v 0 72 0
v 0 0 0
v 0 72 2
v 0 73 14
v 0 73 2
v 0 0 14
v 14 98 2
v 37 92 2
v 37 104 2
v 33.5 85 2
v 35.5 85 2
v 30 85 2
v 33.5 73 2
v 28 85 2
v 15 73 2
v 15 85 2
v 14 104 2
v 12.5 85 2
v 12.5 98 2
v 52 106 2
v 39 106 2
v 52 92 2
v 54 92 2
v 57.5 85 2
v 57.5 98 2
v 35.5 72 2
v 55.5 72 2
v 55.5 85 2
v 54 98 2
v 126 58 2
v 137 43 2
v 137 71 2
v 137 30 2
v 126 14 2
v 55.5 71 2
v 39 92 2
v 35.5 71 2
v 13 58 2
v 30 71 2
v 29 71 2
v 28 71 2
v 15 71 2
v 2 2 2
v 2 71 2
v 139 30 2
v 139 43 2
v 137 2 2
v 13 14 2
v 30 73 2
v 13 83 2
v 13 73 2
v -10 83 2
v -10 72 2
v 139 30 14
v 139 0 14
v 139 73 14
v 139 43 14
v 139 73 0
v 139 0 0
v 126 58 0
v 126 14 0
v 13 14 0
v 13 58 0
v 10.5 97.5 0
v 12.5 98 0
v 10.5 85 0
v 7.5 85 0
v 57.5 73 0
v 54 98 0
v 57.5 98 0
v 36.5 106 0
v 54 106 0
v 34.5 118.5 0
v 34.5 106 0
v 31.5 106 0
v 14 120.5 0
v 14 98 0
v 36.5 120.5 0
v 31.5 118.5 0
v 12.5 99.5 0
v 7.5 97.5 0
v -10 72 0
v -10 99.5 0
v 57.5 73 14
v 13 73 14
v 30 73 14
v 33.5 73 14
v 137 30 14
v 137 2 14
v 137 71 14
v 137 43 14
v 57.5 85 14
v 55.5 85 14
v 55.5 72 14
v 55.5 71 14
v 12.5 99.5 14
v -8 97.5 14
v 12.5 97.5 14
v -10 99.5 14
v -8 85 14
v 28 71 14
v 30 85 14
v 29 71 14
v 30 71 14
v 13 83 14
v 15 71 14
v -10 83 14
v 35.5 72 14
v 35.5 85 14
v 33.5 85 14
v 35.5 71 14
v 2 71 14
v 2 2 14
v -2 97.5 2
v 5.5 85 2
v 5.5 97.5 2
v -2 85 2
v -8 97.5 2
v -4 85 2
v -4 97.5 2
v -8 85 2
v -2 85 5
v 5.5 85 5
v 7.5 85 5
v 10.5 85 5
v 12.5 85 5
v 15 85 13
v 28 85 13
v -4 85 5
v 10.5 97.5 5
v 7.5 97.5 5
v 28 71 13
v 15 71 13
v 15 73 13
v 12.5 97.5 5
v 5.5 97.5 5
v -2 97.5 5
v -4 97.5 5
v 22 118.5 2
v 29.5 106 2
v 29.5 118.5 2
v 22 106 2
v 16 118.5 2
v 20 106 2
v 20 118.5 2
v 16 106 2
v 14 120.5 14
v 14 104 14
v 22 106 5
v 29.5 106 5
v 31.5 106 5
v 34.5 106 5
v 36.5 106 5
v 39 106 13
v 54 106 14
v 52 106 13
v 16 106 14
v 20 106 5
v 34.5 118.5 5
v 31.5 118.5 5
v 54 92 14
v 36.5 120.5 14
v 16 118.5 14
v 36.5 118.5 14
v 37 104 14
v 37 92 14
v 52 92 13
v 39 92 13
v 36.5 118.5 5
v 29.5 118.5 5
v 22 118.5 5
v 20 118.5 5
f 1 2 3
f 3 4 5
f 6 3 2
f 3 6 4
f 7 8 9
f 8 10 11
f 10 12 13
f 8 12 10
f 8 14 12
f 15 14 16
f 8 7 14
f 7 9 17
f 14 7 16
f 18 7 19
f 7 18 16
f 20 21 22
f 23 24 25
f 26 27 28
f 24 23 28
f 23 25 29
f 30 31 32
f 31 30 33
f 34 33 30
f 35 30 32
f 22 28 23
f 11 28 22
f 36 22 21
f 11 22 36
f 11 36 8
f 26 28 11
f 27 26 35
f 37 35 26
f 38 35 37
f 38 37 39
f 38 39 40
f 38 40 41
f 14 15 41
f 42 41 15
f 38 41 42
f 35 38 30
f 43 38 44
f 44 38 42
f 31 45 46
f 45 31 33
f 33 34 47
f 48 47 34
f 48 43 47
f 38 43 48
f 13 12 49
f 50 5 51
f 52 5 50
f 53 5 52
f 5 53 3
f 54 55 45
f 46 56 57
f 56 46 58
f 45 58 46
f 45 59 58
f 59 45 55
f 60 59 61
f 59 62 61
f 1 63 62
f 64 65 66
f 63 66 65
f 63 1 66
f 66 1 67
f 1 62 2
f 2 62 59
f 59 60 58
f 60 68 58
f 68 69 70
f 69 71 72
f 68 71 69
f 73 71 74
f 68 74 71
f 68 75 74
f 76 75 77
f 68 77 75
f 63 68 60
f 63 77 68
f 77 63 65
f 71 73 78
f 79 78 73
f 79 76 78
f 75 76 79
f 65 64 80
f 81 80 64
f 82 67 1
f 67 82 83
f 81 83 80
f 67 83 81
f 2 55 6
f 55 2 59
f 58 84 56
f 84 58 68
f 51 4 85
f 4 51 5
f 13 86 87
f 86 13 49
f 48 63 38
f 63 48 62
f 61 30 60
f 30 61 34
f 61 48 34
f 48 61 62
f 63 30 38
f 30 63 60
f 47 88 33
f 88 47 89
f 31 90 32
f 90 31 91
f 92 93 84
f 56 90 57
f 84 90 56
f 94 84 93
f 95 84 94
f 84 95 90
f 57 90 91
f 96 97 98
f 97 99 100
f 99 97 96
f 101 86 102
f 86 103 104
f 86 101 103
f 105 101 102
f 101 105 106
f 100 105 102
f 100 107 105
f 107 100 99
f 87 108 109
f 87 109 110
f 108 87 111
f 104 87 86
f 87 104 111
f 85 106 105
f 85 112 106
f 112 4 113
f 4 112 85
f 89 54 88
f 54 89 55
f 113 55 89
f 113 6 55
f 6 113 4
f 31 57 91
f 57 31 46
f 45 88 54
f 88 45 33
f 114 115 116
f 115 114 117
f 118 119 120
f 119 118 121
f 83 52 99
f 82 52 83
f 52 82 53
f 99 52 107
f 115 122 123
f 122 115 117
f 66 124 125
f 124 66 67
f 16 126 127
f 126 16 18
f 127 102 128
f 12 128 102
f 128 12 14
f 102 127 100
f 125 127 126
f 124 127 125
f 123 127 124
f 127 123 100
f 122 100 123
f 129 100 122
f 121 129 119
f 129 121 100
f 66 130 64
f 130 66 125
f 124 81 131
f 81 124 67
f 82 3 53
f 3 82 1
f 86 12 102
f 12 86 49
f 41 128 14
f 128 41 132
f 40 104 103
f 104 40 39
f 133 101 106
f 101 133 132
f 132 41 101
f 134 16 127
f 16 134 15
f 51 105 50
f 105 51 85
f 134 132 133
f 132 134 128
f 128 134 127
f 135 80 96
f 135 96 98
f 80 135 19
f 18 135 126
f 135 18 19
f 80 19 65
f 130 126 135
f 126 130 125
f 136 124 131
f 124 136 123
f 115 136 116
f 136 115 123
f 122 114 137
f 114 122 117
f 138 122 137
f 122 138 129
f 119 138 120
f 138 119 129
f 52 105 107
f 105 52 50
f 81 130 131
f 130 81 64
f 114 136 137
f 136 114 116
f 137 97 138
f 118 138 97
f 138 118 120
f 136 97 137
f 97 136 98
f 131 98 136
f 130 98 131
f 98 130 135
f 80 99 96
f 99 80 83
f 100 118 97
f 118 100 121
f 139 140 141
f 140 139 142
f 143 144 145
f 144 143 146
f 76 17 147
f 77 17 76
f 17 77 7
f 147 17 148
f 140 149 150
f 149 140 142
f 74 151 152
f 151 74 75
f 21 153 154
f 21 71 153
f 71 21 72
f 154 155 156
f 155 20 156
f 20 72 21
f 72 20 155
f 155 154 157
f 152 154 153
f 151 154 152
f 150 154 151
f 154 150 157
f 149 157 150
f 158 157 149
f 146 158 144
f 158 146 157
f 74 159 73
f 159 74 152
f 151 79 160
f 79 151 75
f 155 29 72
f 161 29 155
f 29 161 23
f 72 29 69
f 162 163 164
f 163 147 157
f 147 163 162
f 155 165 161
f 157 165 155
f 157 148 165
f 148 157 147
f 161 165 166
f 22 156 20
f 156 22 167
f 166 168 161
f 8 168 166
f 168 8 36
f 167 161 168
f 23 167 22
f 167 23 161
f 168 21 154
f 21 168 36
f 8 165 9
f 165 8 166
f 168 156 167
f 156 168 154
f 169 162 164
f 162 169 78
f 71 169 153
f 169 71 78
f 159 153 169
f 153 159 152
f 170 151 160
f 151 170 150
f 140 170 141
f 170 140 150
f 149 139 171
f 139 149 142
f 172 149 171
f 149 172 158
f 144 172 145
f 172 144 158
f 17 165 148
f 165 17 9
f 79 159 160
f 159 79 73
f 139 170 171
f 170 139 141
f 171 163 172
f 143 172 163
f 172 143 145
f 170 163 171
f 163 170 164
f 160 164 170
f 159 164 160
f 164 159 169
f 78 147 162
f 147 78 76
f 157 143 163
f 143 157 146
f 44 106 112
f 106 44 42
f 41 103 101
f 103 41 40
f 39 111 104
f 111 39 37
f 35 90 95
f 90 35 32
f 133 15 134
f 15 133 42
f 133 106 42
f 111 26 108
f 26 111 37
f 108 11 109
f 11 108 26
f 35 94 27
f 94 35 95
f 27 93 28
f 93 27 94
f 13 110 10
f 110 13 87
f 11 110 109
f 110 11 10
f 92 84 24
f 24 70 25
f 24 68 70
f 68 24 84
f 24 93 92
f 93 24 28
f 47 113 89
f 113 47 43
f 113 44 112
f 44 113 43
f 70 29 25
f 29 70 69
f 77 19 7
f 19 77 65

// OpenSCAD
union() {
	// Device size and layout:
	// 1-135-1
	// |     |
	// 69    69
	// |     |
	// 1-135-1
   // XXX: I'm adding an extra mm on each side to account
	// for the 1mm sides actually coming out closer to 1.5mm

	//base
	difference() {
		cube(size=[139,73,2]);
		translate([13,14,0])
			cube(size=[113,44,2]);
	}
	
	//left
	cube(size=[138,2,14]);
	//right
	difference() {
		translate([0,71,0])
			cube(size=[138,2,14]); // fill in the corner
		translate([15,71,0])
			cube(size=[13,2,14]); // cutout for voldown
		translate([35.5,71,0])
			cube(size=[20,2,14]); // cutout for voldown
	}
	//top
	translate([0, 0, 0])
		cube(size=[2,73,14]);
	//bottom
	difference() {
		translate([137,0,0])
			cube(size=[2,73,14]);
		translate([137,30,0])
			cube(size=[2,13,14]); // cutout for usb charging
	}
	//right side servo mount (power button)
	translate([29,73,0])
		rotate(180)
			servo_mount();
	//right side servo mount (volume buttons)
	translate([53,94,0])
		rotate(180)
			servo_mount();
	//Connect the volume servo base back to the rest
	translate([12,72,0])
		cube(size=[45.5,26,2]);
	//short slide next to the frame for alignment
	translate([38.5,72,0]) {
		// slide sides
        translate([-5,0,0])
            cube(size=[2,13,14]);
		translate([17,0,0])
			cube(size=[2,13,14]);
	}

}

module servo_mount() {
	// Start from edge of hole that is 13 wide,
	// the edge *opposite* the servo mount

	// This section makes the hole for the slider to 
	// push the button, thus everything is translated
	translate([0,-12,0]) {
		// short base to connect to servo mount
		cube(size=[39,13,2]);
		// slide sides
        translate([-1,0,0])
            cube(size=[2,14,14]);
		translate([14,0,0])
			cube(size=[2,14,14]);
		translate([15,0,0])
			cube(size=[2,1,14]);
		//top
		translate([0,0,13])
			cube(size=[15,14,1]);

		// This section is just the servo mount by itself
		//base
		difference() {
			translate([17,-13,0])
				cube(size=[22,13,2]);
			translate([18.5,-13,0])
				cube(size=[3,13,2]);
		}
		translate([16.5,-13,0])
			cube(size=[2,13,5]);
		translate([21.5,-13,0])
			cube(size=[2,13,5]);
		translate([31,-13,0])
			cube(size=[2,13,5]);
		//side walls
		translate([16,0,0])
			cube(size=[23,2,14]);
		translate([16.5,-14.5,0])
			cube(size=[22.5,2,14]);
		//back wall
		translate([37,-14.5,0])
			cube(size=[2,16.5,14]);
	}
}
